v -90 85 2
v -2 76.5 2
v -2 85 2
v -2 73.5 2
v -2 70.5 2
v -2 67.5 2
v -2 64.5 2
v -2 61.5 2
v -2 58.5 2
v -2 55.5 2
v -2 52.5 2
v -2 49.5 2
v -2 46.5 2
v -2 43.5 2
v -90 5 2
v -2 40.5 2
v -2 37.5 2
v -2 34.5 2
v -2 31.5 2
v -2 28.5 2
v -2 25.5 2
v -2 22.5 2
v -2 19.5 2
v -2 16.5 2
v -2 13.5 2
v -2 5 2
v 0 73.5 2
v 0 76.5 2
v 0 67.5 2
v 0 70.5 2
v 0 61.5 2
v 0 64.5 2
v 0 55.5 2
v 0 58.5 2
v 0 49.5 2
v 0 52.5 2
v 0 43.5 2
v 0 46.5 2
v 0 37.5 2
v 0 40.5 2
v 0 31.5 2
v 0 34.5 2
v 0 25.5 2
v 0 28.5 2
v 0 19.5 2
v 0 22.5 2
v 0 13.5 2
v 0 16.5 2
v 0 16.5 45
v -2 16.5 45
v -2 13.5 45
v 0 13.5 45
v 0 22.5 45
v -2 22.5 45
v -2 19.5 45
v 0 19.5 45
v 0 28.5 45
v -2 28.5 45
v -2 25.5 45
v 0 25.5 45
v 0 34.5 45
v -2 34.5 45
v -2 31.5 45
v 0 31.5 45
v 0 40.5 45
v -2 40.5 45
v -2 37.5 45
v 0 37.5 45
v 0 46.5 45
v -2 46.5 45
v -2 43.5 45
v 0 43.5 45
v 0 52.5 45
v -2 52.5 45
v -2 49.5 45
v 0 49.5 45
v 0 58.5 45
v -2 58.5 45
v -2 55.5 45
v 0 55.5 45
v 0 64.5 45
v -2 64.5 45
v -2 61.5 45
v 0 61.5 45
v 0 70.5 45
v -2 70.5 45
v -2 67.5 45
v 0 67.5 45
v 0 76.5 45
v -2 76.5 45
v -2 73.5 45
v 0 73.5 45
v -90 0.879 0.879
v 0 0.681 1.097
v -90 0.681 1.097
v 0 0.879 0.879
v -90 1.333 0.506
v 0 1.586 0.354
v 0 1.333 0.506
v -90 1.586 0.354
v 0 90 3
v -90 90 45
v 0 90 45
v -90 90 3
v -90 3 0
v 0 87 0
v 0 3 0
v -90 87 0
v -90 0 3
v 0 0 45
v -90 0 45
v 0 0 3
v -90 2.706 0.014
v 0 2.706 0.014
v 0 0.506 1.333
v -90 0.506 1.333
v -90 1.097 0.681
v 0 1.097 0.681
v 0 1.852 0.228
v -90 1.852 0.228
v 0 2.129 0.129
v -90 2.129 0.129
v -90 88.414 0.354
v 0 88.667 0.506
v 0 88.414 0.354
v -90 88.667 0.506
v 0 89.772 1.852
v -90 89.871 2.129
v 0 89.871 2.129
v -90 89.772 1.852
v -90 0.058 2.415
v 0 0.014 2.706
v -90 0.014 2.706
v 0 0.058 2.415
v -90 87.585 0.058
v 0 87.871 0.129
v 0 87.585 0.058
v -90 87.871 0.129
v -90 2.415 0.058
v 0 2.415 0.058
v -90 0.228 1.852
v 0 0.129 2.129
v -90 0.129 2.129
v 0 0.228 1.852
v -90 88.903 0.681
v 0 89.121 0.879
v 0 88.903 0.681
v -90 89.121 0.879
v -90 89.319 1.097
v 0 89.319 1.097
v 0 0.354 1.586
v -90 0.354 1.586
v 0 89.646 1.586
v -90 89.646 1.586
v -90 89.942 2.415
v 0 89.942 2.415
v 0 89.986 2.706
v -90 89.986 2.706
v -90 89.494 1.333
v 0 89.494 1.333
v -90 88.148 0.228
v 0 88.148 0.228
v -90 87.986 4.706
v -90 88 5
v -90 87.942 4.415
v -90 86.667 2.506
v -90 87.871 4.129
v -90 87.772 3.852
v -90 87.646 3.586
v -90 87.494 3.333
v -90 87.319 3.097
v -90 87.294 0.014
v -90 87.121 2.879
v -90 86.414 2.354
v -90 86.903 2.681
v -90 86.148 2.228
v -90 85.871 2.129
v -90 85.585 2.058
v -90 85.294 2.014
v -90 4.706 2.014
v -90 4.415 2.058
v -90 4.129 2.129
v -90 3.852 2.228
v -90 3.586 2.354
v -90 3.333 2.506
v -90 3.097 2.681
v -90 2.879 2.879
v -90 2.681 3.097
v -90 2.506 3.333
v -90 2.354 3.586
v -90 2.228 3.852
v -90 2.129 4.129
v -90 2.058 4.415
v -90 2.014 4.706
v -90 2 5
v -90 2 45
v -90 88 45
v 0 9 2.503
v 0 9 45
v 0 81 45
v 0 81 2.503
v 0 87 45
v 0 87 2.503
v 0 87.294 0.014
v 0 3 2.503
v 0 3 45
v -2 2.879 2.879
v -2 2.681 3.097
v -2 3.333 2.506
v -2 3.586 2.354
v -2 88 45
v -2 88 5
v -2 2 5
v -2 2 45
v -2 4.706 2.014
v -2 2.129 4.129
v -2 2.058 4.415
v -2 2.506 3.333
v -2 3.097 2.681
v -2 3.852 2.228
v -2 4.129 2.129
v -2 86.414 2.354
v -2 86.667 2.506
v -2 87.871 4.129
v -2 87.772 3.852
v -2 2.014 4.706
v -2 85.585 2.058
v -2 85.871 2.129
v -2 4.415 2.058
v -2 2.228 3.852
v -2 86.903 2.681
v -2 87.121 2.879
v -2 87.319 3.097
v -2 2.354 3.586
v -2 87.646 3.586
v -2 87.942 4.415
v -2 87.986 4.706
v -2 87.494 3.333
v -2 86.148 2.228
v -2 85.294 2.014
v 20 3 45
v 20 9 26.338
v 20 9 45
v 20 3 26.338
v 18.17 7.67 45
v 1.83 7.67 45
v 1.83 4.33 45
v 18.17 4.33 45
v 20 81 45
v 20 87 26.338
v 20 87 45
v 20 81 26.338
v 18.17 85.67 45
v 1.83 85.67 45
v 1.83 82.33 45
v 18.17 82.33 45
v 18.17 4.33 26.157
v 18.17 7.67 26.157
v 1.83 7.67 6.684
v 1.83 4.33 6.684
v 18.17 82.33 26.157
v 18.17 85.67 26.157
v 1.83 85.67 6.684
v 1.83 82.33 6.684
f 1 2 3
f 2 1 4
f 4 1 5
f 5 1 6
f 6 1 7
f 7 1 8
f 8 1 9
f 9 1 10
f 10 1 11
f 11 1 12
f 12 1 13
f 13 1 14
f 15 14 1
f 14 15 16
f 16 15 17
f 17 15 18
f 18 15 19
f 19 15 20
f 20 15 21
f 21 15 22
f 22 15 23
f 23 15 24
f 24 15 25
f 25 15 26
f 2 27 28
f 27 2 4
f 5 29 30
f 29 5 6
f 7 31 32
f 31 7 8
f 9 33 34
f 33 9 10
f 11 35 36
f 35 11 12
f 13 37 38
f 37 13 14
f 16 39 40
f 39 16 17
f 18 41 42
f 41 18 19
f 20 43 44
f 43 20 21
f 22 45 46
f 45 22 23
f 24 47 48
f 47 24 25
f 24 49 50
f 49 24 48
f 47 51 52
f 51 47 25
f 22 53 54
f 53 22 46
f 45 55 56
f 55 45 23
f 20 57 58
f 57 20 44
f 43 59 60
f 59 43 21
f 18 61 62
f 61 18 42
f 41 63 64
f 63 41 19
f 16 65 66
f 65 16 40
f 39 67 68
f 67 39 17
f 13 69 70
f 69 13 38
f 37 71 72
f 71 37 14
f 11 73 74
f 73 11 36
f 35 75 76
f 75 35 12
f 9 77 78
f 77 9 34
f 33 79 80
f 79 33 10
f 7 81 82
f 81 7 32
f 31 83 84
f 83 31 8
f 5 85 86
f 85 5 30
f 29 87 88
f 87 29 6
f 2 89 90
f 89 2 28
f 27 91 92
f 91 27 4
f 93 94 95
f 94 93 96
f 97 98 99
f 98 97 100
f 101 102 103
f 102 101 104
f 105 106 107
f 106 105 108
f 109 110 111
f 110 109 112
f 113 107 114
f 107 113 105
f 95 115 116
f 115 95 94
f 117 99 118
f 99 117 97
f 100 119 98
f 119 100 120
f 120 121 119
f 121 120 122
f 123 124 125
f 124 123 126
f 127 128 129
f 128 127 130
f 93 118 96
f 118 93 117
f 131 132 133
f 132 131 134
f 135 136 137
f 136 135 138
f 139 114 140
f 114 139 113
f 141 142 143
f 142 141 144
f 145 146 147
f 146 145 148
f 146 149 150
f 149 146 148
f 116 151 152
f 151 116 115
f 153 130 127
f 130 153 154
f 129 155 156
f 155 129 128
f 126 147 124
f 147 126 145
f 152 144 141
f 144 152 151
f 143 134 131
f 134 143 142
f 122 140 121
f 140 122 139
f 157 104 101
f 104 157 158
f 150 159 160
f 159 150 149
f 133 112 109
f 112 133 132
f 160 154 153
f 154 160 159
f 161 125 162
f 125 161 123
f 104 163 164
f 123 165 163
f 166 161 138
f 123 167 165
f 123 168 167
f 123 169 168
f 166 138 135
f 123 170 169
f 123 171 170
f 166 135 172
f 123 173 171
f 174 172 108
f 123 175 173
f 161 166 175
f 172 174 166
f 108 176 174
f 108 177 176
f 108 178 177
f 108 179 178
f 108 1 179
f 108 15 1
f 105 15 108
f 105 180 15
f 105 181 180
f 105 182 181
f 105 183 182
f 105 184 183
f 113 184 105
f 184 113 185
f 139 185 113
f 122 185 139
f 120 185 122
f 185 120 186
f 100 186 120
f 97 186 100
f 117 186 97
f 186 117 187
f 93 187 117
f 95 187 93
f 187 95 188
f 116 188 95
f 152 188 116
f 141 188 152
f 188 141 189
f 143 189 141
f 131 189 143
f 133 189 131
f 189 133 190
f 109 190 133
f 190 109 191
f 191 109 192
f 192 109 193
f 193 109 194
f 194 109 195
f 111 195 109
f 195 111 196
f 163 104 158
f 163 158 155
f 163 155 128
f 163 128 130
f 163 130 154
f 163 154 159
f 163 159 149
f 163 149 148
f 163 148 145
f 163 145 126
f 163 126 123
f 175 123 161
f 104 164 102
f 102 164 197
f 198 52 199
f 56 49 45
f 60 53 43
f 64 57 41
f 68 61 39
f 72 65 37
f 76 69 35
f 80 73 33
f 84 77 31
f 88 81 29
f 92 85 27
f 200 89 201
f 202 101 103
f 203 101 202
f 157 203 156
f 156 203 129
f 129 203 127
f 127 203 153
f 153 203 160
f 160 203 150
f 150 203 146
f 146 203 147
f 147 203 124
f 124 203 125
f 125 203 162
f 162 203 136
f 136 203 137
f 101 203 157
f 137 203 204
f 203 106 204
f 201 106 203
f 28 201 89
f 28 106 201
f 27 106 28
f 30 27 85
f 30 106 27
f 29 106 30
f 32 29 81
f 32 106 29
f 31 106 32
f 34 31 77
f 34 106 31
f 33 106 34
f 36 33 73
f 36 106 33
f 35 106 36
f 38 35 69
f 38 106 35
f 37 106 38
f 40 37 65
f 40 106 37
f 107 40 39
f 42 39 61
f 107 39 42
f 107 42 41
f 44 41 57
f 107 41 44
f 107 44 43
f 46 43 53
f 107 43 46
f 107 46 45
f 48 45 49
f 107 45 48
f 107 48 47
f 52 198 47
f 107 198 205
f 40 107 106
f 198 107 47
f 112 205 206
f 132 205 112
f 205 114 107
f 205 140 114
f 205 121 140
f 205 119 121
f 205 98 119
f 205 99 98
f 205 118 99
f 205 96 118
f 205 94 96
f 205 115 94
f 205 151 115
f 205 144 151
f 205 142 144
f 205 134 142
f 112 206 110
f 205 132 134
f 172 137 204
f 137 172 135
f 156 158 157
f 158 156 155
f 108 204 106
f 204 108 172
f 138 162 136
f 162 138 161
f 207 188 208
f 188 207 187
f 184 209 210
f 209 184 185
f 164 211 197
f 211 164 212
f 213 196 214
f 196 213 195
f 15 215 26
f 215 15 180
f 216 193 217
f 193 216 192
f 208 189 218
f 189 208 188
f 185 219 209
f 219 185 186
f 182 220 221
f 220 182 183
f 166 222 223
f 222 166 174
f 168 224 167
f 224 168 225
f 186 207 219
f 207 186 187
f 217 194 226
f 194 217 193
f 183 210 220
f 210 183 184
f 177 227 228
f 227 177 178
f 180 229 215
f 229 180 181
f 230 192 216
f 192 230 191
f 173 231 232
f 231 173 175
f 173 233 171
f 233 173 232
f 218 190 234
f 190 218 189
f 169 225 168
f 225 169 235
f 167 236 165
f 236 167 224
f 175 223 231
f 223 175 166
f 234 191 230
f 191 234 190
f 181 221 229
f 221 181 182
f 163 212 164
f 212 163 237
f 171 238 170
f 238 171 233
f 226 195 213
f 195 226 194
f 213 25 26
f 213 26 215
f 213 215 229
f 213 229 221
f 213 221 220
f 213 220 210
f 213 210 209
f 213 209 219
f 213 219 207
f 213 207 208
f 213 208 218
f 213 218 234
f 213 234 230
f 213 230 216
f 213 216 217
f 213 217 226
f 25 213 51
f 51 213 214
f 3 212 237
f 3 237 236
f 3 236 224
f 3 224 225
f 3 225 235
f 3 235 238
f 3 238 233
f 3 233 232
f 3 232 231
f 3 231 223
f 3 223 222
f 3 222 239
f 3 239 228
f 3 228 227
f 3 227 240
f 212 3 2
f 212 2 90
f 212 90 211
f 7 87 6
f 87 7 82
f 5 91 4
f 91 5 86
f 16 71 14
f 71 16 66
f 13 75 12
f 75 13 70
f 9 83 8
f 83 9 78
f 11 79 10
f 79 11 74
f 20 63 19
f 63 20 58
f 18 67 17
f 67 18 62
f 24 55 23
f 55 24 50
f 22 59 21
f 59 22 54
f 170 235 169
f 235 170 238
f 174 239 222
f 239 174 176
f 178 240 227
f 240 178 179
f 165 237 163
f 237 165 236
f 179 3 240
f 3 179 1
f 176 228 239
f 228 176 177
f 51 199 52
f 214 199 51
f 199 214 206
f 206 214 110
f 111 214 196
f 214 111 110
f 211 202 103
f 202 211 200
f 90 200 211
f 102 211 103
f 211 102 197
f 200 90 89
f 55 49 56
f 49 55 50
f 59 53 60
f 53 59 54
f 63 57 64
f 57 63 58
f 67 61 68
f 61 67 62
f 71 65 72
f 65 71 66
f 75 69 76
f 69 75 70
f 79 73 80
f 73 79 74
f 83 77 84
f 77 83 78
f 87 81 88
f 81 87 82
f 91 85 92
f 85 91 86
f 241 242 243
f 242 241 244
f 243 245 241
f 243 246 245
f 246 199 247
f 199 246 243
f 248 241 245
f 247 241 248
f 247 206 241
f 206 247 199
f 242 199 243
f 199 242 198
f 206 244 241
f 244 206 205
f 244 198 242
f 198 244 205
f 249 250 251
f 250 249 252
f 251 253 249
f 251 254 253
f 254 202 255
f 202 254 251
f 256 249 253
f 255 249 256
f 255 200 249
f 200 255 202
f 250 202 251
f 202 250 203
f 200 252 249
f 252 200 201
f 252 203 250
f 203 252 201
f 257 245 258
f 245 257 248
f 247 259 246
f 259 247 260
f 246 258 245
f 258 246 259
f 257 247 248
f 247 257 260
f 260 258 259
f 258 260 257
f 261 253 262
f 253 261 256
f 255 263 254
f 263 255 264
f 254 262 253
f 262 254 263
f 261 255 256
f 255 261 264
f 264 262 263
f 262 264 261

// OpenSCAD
// file: mixin.scad
$fn = 64;

POT_SIZE = 90;
WALL_WIDTH = 2;
CORNER_RADIUS = 3;

LEG_WIDTH = 6;
LEG_LENGTH = 20;
PIN_DEPTH = 20;
PIN_LENGTH = PIN_DEPTH - WALL_WIDTH * 2;

PIN_WIDTH = 3;
PIN_HEIGHT = POT_SIZE / 2 + POT_SIZE / 4;
FIT_GAP = 0.34;
OVERCUT = 0.1;

FIRST_LEG_Y = CORNER_RADIUS;
SECOND_LEG_Y = POT_SIZE - CORNER_RADIUS - LEG_WIDTH;

SLOT_WIDTH = 3;
SLOT_STEP = 6;

module rounded_box(size = [10, 10, 5], corner_radius = CORNER_RADIUS) {
  translate([size[0] / 2, size[1] / 2, 0]) {
    linear_extrude(height=size[2]) {
      minkowski() {
        square([size[0] - 2 * corner_radius, size[1] - 2 * corner_radius], center=true);
        circle(r=corner_radius);
      }
    }
  }
}

module bottom_slots() {
  between_legs_span = POT_SIZE - 2 * (CORNER_RADIUS + LEG_WIDTH);
  slot_count_half = floor((between_legs_span / 2 - SLOT_WIDTH / 2) / SLOT_STEP);
  for (slot_index = [-slot_count_half:slot_count_half])
    translate([WALL_WIDTH, POT_SIZE / 2 + slot_index * SLOT_STEP - SLOT_WIDTH / 2, -OVERCUT])
      cube([POT_SIZE, SLOT_WIDTH, WALL_WIDTH + OVERCUT * 2]);
}

module pot_shell() {
  rotate([0, -90, 0]) difference() {
    rounded_box([POT_SIZE, POT_SIZE, POT_SIZE]);
    translate([WALL_WIDTH, WALL_WIDTH, WALL_WIDTH])
      rounded_box([
        POT_SIZE - WALL_WIDTH * 2,
        POT_SIZE - WALL_WIDTH * 2,
        POT_SIZE + WALL_WIDTH * 2,
      ]);
    translate([POT_SIZE / 2, -WALL_WIDTH, -WALL_WIDTH])
      cube([POT_SIZE, POT_SIZE + WALL_WIDTH * 2, POT_SIZE * 2]);

    bottom_slots();
  }
}

module angled_cut(leg_y) {
  translate([-0.1 - WALL_WIDTH, leg_y - 0.1, 0]) rotate([0, 40, 0])
    cube([LEG_LENGTH + 0.2, LEG_WIDTH + 0.2, POT_SIZE / 2]);
}

module leg(leg_y) {
  leg_height = POT_SIZE / 2;
  difference() {
    translate([0, leg_y, WALL_WIDTH + FIT_GAP])
      cube([LEG_LENGTH, LEG_WIDTH, leg_height - WALL_WIDTH - FIT_GAP]);

    angled_cut(leg_y);
  }
}

module legs() {
  leg(FIRST_LEG_Y);
  leg(SECOND_LEG_Y);
}

module leg_pin(leg_y, pin_width, pin_length) {
  difference() {
    translate([(PIN_DEPTH - pin_length) / 2, leg_y + (LEG_WIDTH - pin_width) / 2, WALL_WIDTH + FIT_GAP])
      cube([pin_length, pin_width, PIN_HEIGHT]);

    angled_cut(leg_y);
  }
}

module leg_pins(pin_width, pin_length) {
  leg_pin(FIRST_LEG_Y, pin_width, pin_length);
  leg_pin(SECOND_LEG_Y, pin_width, pin_length);
}

module leg_with_socket(leg_y) {
  difference() {
    leg(leg_y);
    translate([0, 0, WALL_WIDTH])
      leg_pin(leg_y, PIN_WIDTH + FIT_GAP, PIN_LENGTH + FIT_GAP);
  }
}

module leg_with_pin(leg_y) {
  leg(leg_y);
  leg_pin(leg_y, PIN_WIDTH, PIN_LENGTH);
}
// main file
include <mixin.scad>;

module inner_shell_b() {
  pot_shell();
  difference() {
    legs();
    translate([0, 0, WALL_WIDTH])
      leg_pins(PIN_WIDTH + FIT_GAP, PIN_LENGTH + FIT_GAP);
  }
}

inner_shell_b();
